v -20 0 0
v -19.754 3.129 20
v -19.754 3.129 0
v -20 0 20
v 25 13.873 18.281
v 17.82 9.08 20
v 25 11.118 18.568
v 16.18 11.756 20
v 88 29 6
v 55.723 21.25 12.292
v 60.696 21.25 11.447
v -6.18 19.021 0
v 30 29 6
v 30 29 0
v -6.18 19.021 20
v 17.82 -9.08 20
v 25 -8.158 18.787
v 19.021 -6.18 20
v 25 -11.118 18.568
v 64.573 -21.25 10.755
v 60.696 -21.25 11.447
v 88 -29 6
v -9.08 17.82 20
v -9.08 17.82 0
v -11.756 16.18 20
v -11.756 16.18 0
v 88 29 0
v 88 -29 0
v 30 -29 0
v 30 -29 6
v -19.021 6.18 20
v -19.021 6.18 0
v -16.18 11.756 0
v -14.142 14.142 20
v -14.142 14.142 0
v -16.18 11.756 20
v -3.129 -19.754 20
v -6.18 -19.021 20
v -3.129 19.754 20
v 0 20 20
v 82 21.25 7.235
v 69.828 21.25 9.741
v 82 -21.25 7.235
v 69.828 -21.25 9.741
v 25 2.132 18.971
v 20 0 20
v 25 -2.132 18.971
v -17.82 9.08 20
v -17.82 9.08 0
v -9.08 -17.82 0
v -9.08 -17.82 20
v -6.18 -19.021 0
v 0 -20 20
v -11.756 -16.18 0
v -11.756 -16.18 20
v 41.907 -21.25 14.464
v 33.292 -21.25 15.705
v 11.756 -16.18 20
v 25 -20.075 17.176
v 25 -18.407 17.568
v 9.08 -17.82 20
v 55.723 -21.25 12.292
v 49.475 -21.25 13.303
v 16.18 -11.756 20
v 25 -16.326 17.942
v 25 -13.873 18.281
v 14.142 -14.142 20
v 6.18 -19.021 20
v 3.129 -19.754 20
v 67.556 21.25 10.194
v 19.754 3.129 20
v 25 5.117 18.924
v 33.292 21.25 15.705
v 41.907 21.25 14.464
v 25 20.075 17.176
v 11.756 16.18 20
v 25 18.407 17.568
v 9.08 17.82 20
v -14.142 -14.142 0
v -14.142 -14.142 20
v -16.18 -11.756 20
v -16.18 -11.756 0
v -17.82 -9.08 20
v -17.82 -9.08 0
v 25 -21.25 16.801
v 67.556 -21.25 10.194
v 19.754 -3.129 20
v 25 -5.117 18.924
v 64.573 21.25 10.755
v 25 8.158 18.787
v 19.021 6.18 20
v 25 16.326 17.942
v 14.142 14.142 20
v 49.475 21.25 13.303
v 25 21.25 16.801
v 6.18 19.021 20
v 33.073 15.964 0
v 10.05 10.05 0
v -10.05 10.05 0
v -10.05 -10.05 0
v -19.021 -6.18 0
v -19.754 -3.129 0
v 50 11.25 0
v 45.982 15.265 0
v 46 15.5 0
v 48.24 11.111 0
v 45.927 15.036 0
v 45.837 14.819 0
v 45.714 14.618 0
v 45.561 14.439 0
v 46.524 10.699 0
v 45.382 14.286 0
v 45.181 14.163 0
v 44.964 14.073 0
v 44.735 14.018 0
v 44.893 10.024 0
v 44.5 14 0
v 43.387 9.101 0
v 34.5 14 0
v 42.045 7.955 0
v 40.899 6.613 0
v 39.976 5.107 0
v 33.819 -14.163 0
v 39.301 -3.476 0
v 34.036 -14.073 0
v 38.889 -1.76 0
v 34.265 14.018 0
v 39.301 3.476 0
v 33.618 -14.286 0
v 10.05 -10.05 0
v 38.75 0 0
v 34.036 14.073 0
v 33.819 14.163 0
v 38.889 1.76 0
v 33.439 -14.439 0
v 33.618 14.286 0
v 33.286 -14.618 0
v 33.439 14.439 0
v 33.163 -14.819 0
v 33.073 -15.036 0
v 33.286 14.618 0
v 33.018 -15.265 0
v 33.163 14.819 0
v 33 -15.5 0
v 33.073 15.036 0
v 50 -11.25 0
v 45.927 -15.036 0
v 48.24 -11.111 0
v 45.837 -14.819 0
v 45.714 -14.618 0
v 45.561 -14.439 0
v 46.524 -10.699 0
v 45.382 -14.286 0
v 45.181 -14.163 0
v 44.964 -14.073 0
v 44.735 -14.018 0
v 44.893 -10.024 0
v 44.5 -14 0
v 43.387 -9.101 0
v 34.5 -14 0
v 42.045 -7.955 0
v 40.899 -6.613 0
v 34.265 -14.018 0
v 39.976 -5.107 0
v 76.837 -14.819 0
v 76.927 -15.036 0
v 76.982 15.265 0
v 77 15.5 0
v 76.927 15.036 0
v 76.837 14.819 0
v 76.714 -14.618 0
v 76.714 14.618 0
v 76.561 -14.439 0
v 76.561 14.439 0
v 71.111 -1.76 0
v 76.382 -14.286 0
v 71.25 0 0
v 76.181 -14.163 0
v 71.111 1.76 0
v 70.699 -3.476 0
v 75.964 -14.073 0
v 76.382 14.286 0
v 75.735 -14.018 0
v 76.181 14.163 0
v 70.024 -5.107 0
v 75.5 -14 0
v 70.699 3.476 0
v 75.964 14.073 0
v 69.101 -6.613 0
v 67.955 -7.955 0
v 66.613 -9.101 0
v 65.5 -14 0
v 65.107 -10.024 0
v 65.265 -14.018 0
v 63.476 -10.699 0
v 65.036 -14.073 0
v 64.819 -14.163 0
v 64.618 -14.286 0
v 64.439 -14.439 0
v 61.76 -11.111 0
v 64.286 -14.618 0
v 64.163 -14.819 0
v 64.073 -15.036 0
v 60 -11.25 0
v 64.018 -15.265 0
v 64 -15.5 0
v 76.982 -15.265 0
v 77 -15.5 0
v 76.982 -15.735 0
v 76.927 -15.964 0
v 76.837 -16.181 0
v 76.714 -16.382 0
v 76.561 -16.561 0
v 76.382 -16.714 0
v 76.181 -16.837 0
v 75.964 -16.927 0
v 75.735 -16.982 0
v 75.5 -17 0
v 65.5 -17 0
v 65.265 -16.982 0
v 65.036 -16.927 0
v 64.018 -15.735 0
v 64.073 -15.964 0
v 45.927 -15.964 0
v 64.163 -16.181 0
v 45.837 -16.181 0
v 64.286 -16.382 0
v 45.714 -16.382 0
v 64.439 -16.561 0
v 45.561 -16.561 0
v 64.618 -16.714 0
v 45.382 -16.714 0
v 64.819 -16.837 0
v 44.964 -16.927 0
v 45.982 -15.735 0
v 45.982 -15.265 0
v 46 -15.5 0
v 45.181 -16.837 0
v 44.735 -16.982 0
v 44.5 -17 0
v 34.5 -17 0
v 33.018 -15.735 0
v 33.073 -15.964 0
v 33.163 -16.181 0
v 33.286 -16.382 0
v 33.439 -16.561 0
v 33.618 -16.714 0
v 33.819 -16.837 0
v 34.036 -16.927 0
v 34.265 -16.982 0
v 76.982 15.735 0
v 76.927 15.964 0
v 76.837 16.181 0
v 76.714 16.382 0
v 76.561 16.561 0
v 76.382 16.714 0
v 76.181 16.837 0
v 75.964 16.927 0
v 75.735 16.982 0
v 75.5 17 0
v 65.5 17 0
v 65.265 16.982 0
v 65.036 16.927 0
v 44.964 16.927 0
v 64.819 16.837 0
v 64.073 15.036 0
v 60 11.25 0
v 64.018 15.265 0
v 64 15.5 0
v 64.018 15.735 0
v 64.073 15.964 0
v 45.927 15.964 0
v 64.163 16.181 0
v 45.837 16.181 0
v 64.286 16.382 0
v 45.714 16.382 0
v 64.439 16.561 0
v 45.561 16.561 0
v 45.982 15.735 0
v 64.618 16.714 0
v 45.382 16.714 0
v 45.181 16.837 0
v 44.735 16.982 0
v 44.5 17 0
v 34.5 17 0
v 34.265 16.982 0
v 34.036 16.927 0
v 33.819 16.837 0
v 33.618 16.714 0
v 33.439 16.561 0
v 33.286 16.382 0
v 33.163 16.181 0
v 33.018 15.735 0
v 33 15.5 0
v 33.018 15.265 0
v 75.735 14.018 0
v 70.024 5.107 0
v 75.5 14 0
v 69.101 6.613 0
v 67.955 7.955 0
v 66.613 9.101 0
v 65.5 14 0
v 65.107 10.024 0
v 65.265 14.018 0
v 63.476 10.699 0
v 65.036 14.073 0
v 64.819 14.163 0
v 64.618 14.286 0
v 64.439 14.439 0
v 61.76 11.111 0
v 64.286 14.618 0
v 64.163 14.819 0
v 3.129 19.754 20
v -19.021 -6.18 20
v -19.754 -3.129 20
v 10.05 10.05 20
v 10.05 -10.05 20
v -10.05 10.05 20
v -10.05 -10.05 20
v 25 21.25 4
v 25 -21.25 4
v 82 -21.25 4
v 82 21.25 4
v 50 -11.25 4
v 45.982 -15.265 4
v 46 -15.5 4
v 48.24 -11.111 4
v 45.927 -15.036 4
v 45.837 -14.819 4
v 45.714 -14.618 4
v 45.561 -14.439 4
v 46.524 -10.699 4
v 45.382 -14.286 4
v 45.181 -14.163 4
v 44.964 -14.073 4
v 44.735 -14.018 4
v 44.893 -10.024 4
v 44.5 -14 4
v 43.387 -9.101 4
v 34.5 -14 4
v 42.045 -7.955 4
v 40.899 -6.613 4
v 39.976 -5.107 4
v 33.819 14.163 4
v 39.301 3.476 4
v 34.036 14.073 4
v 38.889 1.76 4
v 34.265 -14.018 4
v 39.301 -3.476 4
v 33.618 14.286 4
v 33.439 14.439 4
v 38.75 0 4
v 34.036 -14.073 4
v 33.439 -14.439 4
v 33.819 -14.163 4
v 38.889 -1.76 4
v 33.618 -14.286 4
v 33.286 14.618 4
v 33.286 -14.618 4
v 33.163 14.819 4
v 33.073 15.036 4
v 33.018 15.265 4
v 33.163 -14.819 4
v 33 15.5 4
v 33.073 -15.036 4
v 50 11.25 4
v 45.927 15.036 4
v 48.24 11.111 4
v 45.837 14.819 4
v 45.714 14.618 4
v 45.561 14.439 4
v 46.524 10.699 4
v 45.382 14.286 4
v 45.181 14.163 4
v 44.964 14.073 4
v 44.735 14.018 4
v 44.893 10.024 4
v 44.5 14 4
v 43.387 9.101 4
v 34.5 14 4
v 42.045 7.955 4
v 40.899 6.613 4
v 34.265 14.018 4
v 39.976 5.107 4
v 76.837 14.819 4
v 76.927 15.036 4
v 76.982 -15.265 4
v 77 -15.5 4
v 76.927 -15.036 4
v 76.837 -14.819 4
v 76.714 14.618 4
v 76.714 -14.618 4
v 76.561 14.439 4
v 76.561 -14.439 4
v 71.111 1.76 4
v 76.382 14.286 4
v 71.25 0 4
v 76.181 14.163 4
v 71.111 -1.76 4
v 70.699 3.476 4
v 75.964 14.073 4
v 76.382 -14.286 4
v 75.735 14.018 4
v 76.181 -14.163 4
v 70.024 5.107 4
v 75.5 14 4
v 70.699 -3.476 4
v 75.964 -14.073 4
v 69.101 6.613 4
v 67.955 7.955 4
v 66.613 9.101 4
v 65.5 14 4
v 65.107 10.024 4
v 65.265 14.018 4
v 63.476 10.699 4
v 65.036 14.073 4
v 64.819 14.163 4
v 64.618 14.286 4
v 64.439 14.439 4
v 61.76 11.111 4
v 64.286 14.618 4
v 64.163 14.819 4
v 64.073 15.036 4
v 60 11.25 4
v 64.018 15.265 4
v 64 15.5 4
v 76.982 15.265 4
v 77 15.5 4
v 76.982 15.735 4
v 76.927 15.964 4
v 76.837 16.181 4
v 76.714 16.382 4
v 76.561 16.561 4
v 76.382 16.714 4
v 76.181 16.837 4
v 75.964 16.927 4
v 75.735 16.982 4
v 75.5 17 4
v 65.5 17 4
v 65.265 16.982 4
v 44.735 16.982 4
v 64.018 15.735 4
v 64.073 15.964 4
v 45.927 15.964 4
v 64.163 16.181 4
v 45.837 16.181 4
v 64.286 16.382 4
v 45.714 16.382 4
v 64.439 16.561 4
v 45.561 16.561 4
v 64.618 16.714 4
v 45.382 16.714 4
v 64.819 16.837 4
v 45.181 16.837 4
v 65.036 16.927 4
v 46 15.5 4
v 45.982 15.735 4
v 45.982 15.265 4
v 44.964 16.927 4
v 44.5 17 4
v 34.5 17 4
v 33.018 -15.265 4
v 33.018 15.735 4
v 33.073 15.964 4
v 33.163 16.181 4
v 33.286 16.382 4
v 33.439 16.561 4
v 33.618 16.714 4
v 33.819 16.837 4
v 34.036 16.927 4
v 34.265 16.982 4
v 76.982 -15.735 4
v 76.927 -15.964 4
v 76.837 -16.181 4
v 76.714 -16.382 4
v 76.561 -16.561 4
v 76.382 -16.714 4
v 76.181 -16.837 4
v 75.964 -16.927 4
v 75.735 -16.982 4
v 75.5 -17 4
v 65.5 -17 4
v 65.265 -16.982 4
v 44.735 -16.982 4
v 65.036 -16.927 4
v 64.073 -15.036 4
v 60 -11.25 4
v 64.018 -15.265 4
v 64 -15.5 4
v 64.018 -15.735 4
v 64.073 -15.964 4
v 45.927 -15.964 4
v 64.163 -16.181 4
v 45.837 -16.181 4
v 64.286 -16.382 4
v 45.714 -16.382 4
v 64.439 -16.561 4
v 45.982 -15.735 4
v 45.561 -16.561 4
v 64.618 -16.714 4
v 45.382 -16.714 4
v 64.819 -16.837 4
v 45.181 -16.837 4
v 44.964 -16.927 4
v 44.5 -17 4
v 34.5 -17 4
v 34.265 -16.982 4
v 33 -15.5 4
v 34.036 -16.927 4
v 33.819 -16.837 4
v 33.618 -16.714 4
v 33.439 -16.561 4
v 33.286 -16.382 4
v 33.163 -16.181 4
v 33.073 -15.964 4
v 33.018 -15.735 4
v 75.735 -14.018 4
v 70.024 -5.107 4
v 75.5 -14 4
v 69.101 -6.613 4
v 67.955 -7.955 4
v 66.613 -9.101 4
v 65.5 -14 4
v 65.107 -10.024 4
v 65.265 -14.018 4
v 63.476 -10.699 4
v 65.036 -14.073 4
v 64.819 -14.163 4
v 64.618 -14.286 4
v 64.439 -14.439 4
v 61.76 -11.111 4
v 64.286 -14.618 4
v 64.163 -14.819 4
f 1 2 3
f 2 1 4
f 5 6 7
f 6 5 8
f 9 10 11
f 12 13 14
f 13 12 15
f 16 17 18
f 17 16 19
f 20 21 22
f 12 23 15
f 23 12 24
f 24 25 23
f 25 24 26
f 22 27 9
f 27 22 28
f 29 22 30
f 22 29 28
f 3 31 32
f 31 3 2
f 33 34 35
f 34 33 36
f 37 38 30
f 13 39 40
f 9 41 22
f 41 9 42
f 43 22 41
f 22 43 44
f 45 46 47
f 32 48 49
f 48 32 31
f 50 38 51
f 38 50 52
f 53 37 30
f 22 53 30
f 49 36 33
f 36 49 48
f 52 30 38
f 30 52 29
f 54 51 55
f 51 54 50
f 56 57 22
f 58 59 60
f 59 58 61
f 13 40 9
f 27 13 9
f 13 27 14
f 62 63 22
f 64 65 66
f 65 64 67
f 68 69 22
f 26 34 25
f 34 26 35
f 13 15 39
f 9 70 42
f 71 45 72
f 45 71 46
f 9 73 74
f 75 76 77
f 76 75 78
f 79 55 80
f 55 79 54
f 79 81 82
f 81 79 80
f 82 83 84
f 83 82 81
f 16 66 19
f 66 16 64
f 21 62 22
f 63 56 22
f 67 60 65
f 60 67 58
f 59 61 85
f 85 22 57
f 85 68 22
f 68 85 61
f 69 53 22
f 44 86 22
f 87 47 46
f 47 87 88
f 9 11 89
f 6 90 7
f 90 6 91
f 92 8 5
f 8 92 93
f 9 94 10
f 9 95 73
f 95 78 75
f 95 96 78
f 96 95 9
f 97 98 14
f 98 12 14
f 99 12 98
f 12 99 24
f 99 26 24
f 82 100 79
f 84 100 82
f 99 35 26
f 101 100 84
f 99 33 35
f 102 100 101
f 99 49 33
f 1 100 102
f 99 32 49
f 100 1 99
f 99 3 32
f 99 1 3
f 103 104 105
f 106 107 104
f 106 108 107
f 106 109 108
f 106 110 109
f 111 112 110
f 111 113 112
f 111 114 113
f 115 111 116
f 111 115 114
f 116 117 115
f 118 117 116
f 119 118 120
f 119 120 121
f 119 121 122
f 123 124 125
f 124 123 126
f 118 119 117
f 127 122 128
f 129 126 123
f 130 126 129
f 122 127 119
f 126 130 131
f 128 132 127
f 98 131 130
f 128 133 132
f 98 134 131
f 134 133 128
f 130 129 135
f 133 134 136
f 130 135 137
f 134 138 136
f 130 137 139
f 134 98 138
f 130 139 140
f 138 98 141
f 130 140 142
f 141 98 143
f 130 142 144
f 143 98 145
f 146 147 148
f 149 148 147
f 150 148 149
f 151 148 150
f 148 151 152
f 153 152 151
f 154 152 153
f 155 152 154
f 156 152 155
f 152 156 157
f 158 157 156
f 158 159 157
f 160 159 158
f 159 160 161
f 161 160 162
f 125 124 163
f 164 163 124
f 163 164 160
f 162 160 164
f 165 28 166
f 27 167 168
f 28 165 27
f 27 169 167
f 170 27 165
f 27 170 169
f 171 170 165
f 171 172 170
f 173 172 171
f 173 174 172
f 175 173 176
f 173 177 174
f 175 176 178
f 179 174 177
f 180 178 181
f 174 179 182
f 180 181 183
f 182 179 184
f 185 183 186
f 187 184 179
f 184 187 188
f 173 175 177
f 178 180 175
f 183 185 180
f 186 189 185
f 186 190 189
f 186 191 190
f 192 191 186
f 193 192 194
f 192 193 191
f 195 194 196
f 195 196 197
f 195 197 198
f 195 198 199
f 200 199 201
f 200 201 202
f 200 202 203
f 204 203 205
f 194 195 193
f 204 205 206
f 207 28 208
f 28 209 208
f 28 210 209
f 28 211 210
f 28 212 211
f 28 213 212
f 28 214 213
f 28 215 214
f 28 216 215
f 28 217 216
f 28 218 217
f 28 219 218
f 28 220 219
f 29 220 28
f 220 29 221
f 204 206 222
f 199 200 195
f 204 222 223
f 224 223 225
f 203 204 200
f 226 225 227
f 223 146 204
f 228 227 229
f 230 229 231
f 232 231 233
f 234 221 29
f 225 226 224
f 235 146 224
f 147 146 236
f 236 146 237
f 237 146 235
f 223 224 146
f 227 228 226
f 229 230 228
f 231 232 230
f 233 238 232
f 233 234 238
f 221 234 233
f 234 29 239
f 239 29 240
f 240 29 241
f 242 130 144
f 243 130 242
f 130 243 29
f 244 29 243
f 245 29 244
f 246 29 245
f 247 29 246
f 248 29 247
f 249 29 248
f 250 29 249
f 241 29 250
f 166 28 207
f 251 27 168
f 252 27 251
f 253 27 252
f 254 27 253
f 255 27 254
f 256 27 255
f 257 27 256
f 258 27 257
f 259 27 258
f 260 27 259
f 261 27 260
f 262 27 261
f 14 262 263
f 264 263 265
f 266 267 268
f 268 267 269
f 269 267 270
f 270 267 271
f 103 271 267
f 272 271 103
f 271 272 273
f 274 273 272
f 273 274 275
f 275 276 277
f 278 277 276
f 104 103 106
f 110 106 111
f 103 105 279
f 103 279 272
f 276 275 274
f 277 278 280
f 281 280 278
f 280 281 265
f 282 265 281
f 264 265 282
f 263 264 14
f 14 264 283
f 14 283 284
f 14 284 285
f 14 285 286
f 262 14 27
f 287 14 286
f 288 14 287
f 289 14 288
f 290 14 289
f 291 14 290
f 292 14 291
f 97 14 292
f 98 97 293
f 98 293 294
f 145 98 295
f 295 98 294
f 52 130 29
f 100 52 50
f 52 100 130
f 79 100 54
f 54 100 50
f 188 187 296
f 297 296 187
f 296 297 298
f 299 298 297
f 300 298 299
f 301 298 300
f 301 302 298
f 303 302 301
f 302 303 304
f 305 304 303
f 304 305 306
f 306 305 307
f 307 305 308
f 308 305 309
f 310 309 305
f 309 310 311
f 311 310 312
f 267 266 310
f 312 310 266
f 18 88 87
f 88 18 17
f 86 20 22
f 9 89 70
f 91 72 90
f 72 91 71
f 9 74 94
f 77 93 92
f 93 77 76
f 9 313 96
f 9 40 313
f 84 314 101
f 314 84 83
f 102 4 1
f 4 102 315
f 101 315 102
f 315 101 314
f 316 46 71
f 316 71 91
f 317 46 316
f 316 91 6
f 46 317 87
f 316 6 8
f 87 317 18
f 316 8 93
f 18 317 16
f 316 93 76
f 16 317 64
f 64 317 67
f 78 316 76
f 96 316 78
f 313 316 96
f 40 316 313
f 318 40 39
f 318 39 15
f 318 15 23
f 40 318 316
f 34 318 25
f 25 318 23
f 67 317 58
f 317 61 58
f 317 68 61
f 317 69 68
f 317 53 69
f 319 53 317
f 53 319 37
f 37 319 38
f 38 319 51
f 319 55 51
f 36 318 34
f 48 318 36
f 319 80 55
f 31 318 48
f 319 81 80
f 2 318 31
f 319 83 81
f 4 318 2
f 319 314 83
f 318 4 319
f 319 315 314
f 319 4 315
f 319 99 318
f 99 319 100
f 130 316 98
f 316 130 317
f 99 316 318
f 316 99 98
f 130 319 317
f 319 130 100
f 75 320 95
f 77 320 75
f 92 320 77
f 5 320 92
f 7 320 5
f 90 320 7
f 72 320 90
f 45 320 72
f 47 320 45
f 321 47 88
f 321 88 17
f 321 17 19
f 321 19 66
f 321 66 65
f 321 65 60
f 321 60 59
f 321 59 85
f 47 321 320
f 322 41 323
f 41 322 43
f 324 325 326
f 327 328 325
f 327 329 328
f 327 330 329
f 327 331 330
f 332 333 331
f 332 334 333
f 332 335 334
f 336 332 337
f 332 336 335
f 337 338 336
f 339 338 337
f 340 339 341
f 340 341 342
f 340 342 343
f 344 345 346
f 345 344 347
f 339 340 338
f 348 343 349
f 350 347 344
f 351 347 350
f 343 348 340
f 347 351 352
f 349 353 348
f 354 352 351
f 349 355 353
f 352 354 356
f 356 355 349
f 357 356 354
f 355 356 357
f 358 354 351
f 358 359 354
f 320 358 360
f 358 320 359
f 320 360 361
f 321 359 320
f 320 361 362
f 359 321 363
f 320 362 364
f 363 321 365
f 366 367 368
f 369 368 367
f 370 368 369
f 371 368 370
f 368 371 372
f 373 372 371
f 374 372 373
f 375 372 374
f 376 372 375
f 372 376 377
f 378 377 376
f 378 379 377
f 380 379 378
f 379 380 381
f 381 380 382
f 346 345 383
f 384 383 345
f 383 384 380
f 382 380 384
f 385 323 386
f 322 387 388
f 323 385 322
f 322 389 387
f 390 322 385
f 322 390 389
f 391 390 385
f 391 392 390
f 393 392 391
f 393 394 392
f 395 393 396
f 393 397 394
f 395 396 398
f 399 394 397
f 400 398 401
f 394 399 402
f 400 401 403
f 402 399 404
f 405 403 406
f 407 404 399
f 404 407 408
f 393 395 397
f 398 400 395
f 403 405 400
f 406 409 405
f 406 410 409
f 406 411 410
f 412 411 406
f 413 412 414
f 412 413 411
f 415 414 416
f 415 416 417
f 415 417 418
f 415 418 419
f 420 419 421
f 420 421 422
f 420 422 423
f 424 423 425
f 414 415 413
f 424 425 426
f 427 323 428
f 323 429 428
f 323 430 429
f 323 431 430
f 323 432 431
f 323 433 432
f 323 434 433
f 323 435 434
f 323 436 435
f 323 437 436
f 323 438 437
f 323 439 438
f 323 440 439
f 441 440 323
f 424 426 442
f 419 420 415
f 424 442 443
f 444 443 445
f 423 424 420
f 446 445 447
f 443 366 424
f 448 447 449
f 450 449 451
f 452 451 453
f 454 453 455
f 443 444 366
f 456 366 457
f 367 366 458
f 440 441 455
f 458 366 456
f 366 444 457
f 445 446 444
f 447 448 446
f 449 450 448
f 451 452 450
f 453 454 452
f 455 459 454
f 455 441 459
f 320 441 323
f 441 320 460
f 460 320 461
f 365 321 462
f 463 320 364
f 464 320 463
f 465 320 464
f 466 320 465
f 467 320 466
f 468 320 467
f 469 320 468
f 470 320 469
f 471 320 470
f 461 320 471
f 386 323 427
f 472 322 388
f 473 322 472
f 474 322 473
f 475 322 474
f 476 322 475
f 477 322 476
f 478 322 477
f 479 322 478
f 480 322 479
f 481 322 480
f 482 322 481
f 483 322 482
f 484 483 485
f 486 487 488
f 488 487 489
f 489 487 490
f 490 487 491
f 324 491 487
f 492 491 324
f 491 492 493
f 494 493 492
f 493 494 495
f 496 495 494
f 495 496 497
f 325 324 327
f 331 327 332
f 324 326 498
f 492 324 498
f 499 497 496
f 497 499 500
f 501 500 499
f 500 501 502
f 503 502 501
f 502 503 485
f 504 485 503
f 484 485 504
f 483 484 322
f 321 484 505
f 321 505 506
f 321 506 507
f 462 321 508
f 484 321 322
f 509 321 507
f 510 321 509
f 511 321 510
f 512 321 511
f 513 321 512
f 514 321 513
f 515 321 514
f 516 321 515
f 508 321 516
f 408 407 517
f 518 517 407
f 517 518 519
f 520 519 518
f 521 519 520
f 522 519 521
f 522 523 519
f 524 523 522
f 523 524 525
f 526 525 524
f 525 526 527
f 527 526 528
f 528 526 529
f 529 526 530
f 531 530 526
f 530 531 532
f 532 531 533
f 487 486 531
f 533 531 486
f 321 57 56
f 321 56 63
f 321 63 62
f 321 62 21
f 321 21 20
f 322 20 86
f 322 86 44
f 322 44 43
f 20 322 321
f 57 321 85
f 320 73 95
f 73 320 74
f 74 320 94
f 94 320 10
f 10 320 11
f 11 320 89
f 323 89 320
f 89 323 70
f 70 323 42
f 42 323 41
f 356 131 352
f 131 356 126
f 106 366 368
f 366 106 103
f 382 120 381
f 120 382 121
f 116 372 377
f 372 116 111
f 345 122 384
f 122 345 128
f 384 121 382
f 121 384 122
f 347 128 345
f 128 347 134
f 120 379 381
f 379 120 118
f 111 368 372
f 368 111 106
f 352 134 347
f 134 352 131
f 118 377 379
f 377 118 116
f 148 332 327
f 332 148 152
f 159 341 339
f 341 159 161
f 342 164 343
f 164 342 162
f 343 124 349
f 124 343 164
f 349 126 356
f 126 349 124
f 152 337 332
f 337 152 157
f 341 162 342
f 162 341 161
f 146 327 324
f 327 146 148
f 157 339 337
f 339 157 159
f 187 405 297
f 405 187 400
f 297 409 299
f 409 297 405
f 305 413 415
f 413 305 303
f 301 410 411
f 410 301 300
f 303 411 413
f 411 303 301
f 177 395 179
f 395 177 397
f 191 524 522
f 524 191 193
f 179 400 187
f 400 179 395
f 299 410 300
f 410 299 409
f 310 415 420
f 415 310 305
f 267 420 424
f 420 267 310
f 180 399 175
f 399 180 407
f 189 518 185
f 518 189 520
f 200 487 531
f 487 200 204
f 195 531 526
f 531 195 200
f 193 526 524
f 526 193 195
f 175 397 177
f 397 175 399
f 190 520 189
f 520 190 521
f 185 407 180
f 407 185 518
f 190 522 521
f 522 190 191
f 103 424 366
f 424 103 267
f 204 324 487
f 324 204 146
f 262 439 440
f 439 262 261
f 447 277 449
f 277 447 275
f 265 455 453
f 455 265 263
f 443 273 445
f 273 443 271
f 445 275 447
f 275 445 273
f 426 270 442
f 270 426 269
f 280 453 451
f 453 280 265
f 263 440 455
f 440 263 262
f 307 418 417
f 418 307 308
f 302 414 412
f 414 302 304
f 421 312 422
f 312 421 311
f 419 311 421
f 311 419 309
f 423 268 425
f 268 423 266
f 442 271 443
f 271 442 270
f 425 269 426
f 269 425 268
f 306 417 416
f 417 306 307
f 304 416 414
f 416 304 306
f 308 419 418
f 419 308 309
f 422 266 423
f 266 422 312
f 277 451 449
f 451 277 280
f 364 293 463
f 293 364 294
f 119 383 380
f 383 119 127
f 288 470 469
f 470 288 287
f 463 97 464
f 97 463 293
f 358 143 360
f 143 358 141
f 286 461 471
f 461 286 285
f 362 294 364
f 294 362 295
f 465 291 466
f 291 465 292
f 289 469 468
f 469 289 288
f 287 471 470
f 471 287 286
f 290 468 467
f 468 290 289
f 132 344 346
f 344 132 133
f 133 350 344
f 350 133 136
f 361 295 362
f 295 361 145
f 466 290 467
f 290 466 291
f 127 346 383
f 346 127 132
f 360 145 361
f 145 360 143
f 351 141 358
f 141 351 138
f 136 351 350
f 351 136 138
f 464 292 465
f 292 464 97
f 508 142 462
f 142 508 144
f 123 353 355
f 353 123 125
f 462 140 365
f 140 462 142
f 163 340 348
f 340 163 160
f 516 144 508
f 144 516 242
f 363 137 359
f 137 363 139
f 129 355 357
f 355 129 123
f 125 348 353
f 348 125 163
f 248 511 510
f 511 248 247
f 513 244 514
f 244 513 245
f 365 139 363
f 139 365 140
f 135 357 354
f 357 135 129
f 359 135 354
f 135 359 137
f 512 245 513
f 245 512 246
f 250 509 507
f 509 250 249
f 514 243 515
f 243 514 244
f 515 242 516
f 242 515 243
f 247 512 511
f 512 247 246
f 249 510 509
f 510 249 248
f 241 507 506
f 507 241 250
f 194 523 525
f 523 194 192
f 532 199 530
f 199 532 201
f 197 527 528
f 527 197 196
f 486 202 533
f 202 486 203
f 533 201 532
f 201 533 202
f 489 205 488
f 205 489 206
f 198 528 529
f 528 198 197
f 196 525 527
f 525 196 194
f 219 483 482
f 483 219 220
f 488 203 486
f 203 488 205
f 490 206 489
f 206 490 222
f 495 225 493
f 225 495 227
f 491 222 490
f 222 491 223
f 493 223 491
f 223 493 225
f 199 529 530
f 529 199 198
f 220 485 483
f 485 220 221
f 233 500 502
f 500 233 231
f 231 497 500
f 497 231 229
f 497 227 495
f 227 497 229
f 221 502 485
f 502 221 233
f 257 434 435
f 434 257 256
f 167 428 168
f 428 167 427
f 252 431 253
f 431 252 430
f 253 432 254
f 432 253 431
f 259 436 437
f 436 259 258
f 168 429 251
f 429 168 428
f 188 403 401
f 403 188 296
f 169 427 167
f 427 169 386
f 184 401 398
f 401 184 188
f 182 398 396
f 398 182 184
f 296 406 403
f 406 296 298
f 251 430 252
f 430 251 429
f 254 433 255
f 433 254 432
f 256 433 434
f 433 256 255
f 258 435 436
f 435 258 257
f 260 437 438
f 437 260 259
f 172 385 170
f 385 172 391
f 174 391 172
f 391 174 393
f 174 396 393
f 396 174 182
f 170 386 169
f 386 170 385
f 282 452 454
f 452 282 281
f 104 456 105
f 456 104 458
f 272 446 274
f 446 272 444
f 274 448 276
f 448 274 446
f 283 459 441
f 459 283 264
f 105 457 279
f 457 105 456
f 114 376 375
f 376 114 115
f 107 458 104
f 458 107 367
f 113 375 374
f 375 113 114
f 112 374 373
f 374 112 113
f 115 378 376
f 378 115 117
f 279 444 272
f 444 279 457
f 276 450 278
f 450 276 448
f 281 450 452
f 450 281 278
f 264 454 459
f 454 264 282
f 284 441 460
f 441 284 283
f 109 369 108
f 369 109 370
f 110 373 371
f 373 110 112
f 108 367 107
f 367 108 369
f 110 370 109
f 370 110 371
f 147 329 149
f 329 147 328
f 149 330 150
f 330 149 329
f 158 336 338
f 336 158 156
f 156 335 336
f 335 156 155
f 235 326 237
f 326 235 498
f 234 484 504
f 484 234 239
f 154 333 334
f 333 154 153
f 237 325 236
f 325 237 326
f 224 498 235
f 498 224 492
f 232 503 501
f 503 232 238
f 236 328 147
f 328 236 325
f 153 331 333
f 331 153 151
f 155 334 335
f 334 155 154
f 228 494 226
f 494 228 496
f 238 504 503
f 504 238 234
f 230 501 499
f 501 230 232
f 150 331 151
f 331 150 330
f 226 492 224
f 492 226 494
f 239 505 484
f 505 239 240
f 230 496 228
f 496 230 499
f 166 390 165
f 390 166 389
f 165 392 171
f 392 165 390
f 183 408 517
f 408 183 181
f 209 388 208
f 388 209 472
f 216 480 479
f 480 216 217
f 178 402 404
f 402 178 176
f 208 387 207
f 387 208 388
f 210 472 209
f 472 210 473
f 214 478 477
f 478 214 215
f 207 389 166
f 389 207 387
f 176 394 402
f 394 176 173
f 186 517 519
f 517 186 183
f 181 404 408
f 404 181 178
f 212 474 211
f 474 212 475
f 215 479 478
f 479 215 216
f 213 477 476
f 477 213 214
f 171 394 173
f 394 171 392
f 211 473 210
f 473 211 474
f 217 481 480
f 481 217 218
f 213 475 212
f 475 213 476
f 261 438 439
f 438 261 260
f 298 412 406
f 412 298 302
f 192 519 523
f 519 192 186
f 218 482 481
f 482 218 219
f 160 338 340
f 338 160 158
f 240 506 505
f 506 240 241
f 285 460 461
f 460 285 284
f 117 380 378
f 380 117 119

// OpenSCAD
//translate([50,0,+20])rotate([0,180,0])color("red")import("motor_nema17.stl");

difference(){
hull(){
translate([0,0,0])cylinder(r=40/2, h=20, $fn=40);
translate([30,-58/2,0])cube([58,58,6]);
}
translate([-20.1/2,-20.1/2,-1])cube([20.1,20.1,42]);  

translate([25,-42.5/2,4])cube([57,42.5,20]);

translate([50,0,-5])cylinder(r=22.5/2, h=15, $fn=40);
translate([60,0,-5])cylinder(r=22.5/2, h=15, $fn=40);
translate([55-10/2,-22.5/2,-5])cube([10,22.5,20]);


translate([50+31/2,+31/2,-5])cylinder(r=3/2, h=15, $fn=40);
translate([50-31/2,+31/2,-5])cylinder(r=3/2, h=15, $fn=40);
translate([50-31/2,-31/2,-5])cylinder(r=3/2, h=15, $fn=40);
translate([50+31/2,-31/2,-5])cylinder(r=3/2, h=15, $fn=40);

translate([60+31/2,+31/2,-5])cylinder(r=3/2, h=15, $fn=40);
translate([60-31/2,+31/2,-5])cylinder(r=3/2, h=15, $fn=40);
translate([60-31/2,-31/2,-5])cylinder(r=3/2, h=15, $fn=40);
translate([60+31/2,-31/2,-5])cylinder(r=3/2, h=15, $fn=40);

translate([55-10/2+31/2,-3/2+31/2,-5])cube([10,3,20]);
translate([55-10/2+31/2,-3/2-31/2,-5])cube([10,3,20]);
translate([55-10/2-31/2,-3/2-31/2,-5])cube([10,3,20]);
translate([55-10/2-31/2,-3/2+31/2,-5])cube([10,3,20]);

}
